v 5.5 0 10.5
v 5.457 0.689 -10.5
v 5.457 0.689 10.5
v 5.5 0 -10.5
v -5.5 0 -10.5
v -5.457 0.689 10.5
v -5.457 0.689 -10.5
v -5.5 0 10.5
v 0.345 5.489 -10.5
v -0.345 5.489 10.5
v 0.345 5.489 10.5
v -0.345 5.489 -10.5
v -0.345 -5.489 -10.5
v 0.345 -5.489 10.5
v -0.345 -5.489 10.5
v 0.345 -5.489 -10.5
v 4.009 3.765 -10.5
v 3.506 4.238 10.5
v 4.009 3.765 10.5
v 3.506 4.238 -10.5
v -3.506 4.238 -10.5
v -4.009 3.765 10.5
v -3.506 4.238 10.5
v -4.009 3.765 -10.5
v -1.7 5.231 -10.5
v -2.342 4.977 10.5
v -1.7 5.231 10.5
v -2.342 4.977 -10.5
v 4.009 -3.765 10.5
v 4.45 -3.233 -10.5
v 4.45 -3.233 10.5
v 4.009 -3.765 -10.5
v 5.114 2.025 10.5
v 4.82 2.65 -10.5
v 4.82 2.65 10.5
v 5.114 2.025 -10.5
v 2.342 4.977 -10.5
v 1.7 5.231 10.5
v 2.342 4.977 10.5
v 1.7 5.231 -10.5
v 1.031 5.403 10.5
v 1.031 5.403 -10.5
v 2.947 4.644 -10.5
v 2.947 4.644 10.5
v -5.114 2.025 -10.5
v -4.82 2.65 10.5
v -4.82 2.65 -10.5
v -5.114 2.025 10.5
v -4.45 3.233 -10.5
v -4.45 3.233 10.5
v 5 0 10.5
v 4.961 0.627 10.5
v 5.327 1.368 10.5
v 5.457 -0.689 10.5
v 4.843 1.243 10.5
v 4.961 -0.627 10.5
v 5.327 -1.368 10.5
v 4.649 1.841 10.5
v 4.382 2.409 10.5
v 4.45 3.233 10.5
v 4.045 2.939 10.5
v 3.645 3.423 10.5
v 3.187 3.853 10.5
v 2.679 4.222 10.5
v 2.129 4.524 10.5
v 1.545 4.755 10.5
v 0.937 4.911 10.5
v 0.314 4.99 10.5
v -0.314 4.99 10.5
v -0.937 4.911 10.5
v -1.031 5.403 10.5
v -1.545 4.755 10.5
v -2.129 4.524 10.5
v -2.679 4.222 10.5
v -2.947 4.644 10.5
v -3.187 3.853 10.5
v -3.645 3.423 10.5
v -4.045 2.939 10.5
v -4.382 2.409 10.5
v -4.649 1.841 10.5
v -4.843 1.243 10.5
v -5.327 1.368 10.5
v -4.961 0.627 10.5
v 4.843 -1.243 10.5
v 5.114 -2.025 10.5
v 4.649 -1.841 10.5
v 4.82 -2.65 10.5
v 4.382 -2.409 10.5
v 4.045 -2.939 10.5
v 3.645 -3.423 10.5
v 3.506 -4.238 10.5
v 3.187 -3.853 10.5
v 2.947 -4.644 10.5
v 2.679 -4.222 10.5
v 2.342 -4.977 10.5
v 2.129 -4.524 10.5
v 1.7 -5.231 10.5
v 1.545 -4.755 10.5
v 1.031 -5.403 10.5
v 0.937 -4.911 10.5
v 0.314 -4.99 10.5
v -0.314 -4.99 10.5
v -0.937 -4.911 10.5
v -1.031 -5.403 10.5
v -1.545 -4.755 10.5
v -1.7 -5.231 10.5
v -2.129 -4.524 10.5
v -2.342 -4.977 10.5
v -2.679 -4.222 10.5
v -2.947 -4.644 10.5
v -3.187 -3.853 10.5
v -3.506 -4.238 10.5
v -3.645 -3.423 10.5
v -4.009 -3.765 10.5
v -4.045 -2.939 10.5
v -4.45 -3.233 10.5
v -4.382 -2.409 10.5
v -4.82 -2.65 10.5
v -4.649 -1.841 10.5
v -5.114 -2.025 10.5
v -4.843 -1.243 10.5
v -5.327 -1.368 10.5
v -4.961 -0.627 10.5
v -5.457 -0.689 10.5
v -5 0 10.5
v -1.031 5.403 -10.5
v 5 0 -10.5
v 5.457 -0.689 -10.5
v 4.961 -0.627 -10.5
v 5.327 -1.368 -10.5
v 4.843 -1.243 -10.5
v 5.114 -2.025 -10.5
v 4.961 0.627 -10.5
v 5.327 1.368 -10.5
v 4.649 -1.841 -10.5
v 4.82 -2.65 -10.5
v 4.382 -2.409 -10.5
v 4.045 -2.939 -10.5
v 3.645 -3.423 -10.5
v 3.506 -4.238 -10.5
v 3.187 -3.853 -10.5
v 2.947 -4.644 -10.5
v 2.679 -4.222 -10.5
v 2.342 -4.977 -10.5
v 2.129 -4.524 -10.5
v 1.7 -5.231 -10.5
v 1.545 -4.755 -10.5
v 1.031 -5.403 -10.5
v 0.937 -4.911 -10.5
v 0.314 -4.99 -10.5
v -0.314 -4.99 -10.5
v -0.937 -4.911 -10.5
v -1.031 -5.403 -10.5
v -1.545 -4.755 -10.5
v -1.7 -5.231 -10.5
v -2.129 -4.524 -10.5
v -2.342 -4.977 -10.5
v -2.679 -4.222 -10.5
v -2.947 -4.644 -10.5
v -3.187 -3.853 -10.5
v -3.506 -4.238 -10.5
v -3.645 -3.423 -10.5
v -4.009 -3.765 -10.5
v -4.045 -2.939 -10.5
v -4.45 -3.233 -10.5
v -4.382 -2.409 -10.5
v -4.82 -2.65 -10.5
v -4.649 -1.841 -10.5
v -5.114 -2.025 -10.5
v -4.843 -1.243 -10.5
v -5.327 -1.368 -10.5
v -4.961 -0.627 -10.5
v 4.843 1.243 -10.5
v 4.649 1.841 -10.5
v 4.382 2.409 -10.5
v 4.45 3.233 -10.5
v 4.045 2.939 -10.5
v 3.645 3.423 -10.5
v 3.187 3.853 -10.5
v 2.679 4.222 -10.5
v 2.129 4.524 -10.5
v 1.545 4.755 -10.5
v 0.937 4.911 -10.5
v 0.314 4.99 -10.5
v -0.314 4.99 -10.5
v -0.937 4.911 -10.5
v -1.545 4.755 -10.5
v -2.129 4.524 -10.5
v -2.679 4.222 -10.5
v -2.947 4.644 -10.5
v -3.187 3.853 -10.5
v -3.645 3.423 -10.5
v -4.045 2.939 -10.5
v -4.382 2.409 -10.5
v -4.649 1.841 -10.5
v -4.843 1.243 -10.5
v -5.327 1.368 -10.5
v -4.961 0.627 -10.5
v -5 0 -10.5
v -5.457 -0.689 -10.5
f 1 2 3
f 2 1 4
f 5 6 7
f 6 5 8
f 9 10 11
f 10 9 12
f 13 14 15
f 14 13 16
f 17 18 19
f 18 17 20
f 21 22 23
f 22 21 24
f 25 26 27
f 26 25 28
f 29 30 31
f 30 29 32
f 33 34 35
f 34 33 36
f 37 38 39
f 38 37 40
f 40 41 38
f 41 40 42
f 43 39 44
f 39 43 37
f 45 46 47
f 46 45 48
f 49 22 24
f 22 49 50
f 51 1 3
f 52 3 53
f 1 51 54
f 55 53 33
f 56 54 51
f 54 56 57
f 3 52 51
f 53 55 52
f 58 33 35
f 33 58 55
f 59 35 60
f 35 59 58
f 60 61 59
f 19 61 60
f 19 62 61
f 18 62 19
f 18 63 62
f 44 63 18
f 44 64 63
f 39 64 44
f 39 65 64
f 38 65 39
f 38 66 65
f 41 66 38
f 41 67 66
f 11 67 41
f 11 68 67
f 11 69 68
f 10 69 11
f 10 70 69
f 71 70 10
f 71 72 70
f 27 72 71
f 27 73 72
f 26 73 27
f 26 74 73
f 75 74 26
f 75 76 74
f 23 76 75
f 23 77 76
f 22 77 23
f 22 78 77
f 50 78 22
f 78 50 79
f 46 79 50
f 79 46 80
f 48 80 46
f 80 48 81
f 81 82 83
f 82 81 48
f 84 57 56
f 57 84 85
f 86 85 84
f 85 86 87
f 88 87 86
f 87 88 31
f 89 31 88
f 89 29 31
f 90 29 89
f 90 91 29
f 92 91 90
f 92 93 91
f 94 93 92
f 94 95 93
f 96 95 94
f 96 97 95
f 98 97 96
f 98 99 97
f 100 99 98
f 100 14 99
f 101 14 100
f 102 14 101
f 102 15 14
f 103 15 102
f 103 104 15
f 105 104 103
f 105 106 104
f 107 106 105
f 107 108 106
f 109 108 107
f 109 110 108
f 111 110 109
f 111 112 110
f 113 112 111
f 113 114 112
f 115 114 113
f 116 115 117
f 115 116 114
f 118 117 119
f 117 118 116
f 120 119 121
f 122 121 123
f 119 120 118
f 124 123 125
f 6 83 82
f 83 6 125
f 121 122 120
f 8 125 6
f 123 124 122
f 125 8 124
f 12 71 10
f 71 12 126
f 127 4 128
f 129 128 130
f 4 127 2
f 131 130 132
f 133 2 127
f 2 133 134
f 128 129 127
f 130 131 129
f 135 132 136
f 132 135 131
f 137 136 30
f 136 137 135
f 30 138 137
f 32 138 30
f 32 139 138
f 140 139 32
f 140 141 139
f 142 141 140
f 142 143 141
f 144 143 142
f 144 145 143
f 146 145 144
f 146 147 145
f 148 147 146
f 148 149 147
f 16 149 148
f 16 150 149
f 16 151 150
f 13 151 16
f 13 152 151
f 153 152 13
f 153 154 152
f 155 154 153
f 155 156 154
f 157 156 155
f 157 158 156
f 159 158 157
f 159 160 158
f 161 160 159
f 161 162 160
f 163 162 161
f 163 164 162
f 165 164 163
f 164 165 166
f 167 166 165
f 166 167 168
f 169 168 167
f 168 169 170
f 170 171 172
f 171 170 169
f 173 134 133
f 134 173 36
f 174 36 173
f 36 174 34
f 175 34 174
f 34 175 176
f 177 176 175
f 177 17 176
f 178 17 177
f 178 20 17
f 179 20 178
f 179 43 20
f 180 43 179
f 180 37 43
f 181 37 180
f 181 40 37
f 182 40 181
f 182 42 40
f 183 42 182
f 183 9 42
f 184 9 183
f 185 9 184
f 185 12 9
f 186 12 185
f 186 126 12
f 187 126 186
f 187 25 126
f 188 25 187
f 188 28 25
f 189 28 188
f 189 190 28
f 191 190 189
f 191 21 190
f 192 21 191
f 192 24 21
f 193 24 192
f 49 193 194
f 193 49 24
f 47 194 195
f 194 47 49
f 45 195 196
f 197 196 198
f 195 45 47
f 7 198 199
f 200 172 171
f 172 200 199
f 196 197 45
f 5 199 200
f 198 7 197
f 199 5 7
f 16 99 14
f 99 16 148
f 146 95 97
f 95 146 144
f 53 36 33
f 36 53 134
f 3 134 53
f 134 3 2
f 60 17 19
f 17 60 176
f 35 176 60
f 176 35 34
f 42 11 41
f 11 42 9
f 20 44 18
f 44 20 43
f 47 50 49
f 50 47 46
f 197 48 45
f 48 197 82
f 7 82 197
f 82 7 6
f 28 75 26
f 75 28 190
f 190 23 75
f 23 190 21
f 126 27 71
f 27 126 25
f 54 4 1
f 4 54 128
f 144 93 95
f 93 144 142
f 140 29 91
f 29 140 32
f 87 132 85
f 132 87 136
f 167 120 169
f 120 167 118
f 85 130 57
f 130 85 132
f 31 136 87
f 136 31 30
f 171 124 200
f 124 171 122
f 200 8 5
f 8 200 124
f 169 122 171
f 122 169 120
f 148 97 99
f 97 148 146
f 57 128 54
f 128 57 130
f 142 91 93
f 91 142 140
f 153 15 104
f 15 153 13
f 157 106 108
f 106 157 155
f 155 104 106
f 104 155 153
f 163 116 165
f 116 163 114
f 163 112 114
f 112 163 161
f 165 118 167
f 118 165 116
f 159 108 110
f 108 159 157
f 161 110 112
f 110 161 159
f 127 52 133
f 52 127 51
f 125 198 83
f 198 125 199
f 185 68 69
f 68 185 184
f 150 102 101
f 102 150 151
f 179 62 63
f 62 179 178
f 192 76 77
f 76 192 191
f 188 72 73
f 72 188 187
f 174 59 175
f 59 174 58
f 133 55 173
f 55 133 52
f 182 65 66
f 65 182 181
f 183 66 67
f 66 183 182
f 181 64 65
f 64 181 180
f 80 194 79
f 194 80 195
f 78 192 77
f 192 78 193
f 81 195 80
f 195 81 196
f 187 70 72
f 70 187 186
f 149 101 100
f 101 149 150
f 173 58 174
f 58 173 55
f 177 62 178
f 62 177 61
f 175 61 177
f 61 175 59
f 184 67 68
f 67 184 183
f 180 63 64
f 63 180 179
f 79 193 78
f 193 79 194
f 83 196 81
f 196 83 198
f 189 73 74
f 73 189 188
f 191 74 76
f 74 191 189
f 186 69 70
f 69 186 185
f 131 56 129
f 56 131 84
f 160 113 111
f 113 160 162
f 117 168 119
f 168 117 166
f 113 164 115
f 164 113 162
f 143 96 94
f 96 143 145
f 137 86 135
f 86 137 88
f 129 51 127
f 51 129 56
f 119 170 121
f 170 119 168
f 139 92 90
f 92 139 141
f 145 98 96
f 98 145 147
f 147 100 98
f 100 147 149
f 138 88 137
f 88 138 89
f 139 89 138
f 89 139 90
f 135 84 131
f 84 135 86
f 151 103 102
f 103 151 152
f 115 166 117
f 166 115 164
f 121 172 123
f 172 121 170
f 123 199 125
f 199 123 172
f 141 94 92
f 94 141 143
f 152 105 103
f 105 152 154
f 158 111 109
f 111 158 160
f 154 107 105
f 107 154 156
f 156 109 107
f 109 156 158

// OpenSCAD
$fn = 50;


difference() {
	union() {
		translate(v = [0, 0, -10.5000000000]) {
			cylinder(h = 21, r = 5.5000000000);
		}
	}
	union() {
		translate(v = [0, 0, -100.0000000000]) {
			cylinder(h = 200, r = 5);
		}
	}
}
